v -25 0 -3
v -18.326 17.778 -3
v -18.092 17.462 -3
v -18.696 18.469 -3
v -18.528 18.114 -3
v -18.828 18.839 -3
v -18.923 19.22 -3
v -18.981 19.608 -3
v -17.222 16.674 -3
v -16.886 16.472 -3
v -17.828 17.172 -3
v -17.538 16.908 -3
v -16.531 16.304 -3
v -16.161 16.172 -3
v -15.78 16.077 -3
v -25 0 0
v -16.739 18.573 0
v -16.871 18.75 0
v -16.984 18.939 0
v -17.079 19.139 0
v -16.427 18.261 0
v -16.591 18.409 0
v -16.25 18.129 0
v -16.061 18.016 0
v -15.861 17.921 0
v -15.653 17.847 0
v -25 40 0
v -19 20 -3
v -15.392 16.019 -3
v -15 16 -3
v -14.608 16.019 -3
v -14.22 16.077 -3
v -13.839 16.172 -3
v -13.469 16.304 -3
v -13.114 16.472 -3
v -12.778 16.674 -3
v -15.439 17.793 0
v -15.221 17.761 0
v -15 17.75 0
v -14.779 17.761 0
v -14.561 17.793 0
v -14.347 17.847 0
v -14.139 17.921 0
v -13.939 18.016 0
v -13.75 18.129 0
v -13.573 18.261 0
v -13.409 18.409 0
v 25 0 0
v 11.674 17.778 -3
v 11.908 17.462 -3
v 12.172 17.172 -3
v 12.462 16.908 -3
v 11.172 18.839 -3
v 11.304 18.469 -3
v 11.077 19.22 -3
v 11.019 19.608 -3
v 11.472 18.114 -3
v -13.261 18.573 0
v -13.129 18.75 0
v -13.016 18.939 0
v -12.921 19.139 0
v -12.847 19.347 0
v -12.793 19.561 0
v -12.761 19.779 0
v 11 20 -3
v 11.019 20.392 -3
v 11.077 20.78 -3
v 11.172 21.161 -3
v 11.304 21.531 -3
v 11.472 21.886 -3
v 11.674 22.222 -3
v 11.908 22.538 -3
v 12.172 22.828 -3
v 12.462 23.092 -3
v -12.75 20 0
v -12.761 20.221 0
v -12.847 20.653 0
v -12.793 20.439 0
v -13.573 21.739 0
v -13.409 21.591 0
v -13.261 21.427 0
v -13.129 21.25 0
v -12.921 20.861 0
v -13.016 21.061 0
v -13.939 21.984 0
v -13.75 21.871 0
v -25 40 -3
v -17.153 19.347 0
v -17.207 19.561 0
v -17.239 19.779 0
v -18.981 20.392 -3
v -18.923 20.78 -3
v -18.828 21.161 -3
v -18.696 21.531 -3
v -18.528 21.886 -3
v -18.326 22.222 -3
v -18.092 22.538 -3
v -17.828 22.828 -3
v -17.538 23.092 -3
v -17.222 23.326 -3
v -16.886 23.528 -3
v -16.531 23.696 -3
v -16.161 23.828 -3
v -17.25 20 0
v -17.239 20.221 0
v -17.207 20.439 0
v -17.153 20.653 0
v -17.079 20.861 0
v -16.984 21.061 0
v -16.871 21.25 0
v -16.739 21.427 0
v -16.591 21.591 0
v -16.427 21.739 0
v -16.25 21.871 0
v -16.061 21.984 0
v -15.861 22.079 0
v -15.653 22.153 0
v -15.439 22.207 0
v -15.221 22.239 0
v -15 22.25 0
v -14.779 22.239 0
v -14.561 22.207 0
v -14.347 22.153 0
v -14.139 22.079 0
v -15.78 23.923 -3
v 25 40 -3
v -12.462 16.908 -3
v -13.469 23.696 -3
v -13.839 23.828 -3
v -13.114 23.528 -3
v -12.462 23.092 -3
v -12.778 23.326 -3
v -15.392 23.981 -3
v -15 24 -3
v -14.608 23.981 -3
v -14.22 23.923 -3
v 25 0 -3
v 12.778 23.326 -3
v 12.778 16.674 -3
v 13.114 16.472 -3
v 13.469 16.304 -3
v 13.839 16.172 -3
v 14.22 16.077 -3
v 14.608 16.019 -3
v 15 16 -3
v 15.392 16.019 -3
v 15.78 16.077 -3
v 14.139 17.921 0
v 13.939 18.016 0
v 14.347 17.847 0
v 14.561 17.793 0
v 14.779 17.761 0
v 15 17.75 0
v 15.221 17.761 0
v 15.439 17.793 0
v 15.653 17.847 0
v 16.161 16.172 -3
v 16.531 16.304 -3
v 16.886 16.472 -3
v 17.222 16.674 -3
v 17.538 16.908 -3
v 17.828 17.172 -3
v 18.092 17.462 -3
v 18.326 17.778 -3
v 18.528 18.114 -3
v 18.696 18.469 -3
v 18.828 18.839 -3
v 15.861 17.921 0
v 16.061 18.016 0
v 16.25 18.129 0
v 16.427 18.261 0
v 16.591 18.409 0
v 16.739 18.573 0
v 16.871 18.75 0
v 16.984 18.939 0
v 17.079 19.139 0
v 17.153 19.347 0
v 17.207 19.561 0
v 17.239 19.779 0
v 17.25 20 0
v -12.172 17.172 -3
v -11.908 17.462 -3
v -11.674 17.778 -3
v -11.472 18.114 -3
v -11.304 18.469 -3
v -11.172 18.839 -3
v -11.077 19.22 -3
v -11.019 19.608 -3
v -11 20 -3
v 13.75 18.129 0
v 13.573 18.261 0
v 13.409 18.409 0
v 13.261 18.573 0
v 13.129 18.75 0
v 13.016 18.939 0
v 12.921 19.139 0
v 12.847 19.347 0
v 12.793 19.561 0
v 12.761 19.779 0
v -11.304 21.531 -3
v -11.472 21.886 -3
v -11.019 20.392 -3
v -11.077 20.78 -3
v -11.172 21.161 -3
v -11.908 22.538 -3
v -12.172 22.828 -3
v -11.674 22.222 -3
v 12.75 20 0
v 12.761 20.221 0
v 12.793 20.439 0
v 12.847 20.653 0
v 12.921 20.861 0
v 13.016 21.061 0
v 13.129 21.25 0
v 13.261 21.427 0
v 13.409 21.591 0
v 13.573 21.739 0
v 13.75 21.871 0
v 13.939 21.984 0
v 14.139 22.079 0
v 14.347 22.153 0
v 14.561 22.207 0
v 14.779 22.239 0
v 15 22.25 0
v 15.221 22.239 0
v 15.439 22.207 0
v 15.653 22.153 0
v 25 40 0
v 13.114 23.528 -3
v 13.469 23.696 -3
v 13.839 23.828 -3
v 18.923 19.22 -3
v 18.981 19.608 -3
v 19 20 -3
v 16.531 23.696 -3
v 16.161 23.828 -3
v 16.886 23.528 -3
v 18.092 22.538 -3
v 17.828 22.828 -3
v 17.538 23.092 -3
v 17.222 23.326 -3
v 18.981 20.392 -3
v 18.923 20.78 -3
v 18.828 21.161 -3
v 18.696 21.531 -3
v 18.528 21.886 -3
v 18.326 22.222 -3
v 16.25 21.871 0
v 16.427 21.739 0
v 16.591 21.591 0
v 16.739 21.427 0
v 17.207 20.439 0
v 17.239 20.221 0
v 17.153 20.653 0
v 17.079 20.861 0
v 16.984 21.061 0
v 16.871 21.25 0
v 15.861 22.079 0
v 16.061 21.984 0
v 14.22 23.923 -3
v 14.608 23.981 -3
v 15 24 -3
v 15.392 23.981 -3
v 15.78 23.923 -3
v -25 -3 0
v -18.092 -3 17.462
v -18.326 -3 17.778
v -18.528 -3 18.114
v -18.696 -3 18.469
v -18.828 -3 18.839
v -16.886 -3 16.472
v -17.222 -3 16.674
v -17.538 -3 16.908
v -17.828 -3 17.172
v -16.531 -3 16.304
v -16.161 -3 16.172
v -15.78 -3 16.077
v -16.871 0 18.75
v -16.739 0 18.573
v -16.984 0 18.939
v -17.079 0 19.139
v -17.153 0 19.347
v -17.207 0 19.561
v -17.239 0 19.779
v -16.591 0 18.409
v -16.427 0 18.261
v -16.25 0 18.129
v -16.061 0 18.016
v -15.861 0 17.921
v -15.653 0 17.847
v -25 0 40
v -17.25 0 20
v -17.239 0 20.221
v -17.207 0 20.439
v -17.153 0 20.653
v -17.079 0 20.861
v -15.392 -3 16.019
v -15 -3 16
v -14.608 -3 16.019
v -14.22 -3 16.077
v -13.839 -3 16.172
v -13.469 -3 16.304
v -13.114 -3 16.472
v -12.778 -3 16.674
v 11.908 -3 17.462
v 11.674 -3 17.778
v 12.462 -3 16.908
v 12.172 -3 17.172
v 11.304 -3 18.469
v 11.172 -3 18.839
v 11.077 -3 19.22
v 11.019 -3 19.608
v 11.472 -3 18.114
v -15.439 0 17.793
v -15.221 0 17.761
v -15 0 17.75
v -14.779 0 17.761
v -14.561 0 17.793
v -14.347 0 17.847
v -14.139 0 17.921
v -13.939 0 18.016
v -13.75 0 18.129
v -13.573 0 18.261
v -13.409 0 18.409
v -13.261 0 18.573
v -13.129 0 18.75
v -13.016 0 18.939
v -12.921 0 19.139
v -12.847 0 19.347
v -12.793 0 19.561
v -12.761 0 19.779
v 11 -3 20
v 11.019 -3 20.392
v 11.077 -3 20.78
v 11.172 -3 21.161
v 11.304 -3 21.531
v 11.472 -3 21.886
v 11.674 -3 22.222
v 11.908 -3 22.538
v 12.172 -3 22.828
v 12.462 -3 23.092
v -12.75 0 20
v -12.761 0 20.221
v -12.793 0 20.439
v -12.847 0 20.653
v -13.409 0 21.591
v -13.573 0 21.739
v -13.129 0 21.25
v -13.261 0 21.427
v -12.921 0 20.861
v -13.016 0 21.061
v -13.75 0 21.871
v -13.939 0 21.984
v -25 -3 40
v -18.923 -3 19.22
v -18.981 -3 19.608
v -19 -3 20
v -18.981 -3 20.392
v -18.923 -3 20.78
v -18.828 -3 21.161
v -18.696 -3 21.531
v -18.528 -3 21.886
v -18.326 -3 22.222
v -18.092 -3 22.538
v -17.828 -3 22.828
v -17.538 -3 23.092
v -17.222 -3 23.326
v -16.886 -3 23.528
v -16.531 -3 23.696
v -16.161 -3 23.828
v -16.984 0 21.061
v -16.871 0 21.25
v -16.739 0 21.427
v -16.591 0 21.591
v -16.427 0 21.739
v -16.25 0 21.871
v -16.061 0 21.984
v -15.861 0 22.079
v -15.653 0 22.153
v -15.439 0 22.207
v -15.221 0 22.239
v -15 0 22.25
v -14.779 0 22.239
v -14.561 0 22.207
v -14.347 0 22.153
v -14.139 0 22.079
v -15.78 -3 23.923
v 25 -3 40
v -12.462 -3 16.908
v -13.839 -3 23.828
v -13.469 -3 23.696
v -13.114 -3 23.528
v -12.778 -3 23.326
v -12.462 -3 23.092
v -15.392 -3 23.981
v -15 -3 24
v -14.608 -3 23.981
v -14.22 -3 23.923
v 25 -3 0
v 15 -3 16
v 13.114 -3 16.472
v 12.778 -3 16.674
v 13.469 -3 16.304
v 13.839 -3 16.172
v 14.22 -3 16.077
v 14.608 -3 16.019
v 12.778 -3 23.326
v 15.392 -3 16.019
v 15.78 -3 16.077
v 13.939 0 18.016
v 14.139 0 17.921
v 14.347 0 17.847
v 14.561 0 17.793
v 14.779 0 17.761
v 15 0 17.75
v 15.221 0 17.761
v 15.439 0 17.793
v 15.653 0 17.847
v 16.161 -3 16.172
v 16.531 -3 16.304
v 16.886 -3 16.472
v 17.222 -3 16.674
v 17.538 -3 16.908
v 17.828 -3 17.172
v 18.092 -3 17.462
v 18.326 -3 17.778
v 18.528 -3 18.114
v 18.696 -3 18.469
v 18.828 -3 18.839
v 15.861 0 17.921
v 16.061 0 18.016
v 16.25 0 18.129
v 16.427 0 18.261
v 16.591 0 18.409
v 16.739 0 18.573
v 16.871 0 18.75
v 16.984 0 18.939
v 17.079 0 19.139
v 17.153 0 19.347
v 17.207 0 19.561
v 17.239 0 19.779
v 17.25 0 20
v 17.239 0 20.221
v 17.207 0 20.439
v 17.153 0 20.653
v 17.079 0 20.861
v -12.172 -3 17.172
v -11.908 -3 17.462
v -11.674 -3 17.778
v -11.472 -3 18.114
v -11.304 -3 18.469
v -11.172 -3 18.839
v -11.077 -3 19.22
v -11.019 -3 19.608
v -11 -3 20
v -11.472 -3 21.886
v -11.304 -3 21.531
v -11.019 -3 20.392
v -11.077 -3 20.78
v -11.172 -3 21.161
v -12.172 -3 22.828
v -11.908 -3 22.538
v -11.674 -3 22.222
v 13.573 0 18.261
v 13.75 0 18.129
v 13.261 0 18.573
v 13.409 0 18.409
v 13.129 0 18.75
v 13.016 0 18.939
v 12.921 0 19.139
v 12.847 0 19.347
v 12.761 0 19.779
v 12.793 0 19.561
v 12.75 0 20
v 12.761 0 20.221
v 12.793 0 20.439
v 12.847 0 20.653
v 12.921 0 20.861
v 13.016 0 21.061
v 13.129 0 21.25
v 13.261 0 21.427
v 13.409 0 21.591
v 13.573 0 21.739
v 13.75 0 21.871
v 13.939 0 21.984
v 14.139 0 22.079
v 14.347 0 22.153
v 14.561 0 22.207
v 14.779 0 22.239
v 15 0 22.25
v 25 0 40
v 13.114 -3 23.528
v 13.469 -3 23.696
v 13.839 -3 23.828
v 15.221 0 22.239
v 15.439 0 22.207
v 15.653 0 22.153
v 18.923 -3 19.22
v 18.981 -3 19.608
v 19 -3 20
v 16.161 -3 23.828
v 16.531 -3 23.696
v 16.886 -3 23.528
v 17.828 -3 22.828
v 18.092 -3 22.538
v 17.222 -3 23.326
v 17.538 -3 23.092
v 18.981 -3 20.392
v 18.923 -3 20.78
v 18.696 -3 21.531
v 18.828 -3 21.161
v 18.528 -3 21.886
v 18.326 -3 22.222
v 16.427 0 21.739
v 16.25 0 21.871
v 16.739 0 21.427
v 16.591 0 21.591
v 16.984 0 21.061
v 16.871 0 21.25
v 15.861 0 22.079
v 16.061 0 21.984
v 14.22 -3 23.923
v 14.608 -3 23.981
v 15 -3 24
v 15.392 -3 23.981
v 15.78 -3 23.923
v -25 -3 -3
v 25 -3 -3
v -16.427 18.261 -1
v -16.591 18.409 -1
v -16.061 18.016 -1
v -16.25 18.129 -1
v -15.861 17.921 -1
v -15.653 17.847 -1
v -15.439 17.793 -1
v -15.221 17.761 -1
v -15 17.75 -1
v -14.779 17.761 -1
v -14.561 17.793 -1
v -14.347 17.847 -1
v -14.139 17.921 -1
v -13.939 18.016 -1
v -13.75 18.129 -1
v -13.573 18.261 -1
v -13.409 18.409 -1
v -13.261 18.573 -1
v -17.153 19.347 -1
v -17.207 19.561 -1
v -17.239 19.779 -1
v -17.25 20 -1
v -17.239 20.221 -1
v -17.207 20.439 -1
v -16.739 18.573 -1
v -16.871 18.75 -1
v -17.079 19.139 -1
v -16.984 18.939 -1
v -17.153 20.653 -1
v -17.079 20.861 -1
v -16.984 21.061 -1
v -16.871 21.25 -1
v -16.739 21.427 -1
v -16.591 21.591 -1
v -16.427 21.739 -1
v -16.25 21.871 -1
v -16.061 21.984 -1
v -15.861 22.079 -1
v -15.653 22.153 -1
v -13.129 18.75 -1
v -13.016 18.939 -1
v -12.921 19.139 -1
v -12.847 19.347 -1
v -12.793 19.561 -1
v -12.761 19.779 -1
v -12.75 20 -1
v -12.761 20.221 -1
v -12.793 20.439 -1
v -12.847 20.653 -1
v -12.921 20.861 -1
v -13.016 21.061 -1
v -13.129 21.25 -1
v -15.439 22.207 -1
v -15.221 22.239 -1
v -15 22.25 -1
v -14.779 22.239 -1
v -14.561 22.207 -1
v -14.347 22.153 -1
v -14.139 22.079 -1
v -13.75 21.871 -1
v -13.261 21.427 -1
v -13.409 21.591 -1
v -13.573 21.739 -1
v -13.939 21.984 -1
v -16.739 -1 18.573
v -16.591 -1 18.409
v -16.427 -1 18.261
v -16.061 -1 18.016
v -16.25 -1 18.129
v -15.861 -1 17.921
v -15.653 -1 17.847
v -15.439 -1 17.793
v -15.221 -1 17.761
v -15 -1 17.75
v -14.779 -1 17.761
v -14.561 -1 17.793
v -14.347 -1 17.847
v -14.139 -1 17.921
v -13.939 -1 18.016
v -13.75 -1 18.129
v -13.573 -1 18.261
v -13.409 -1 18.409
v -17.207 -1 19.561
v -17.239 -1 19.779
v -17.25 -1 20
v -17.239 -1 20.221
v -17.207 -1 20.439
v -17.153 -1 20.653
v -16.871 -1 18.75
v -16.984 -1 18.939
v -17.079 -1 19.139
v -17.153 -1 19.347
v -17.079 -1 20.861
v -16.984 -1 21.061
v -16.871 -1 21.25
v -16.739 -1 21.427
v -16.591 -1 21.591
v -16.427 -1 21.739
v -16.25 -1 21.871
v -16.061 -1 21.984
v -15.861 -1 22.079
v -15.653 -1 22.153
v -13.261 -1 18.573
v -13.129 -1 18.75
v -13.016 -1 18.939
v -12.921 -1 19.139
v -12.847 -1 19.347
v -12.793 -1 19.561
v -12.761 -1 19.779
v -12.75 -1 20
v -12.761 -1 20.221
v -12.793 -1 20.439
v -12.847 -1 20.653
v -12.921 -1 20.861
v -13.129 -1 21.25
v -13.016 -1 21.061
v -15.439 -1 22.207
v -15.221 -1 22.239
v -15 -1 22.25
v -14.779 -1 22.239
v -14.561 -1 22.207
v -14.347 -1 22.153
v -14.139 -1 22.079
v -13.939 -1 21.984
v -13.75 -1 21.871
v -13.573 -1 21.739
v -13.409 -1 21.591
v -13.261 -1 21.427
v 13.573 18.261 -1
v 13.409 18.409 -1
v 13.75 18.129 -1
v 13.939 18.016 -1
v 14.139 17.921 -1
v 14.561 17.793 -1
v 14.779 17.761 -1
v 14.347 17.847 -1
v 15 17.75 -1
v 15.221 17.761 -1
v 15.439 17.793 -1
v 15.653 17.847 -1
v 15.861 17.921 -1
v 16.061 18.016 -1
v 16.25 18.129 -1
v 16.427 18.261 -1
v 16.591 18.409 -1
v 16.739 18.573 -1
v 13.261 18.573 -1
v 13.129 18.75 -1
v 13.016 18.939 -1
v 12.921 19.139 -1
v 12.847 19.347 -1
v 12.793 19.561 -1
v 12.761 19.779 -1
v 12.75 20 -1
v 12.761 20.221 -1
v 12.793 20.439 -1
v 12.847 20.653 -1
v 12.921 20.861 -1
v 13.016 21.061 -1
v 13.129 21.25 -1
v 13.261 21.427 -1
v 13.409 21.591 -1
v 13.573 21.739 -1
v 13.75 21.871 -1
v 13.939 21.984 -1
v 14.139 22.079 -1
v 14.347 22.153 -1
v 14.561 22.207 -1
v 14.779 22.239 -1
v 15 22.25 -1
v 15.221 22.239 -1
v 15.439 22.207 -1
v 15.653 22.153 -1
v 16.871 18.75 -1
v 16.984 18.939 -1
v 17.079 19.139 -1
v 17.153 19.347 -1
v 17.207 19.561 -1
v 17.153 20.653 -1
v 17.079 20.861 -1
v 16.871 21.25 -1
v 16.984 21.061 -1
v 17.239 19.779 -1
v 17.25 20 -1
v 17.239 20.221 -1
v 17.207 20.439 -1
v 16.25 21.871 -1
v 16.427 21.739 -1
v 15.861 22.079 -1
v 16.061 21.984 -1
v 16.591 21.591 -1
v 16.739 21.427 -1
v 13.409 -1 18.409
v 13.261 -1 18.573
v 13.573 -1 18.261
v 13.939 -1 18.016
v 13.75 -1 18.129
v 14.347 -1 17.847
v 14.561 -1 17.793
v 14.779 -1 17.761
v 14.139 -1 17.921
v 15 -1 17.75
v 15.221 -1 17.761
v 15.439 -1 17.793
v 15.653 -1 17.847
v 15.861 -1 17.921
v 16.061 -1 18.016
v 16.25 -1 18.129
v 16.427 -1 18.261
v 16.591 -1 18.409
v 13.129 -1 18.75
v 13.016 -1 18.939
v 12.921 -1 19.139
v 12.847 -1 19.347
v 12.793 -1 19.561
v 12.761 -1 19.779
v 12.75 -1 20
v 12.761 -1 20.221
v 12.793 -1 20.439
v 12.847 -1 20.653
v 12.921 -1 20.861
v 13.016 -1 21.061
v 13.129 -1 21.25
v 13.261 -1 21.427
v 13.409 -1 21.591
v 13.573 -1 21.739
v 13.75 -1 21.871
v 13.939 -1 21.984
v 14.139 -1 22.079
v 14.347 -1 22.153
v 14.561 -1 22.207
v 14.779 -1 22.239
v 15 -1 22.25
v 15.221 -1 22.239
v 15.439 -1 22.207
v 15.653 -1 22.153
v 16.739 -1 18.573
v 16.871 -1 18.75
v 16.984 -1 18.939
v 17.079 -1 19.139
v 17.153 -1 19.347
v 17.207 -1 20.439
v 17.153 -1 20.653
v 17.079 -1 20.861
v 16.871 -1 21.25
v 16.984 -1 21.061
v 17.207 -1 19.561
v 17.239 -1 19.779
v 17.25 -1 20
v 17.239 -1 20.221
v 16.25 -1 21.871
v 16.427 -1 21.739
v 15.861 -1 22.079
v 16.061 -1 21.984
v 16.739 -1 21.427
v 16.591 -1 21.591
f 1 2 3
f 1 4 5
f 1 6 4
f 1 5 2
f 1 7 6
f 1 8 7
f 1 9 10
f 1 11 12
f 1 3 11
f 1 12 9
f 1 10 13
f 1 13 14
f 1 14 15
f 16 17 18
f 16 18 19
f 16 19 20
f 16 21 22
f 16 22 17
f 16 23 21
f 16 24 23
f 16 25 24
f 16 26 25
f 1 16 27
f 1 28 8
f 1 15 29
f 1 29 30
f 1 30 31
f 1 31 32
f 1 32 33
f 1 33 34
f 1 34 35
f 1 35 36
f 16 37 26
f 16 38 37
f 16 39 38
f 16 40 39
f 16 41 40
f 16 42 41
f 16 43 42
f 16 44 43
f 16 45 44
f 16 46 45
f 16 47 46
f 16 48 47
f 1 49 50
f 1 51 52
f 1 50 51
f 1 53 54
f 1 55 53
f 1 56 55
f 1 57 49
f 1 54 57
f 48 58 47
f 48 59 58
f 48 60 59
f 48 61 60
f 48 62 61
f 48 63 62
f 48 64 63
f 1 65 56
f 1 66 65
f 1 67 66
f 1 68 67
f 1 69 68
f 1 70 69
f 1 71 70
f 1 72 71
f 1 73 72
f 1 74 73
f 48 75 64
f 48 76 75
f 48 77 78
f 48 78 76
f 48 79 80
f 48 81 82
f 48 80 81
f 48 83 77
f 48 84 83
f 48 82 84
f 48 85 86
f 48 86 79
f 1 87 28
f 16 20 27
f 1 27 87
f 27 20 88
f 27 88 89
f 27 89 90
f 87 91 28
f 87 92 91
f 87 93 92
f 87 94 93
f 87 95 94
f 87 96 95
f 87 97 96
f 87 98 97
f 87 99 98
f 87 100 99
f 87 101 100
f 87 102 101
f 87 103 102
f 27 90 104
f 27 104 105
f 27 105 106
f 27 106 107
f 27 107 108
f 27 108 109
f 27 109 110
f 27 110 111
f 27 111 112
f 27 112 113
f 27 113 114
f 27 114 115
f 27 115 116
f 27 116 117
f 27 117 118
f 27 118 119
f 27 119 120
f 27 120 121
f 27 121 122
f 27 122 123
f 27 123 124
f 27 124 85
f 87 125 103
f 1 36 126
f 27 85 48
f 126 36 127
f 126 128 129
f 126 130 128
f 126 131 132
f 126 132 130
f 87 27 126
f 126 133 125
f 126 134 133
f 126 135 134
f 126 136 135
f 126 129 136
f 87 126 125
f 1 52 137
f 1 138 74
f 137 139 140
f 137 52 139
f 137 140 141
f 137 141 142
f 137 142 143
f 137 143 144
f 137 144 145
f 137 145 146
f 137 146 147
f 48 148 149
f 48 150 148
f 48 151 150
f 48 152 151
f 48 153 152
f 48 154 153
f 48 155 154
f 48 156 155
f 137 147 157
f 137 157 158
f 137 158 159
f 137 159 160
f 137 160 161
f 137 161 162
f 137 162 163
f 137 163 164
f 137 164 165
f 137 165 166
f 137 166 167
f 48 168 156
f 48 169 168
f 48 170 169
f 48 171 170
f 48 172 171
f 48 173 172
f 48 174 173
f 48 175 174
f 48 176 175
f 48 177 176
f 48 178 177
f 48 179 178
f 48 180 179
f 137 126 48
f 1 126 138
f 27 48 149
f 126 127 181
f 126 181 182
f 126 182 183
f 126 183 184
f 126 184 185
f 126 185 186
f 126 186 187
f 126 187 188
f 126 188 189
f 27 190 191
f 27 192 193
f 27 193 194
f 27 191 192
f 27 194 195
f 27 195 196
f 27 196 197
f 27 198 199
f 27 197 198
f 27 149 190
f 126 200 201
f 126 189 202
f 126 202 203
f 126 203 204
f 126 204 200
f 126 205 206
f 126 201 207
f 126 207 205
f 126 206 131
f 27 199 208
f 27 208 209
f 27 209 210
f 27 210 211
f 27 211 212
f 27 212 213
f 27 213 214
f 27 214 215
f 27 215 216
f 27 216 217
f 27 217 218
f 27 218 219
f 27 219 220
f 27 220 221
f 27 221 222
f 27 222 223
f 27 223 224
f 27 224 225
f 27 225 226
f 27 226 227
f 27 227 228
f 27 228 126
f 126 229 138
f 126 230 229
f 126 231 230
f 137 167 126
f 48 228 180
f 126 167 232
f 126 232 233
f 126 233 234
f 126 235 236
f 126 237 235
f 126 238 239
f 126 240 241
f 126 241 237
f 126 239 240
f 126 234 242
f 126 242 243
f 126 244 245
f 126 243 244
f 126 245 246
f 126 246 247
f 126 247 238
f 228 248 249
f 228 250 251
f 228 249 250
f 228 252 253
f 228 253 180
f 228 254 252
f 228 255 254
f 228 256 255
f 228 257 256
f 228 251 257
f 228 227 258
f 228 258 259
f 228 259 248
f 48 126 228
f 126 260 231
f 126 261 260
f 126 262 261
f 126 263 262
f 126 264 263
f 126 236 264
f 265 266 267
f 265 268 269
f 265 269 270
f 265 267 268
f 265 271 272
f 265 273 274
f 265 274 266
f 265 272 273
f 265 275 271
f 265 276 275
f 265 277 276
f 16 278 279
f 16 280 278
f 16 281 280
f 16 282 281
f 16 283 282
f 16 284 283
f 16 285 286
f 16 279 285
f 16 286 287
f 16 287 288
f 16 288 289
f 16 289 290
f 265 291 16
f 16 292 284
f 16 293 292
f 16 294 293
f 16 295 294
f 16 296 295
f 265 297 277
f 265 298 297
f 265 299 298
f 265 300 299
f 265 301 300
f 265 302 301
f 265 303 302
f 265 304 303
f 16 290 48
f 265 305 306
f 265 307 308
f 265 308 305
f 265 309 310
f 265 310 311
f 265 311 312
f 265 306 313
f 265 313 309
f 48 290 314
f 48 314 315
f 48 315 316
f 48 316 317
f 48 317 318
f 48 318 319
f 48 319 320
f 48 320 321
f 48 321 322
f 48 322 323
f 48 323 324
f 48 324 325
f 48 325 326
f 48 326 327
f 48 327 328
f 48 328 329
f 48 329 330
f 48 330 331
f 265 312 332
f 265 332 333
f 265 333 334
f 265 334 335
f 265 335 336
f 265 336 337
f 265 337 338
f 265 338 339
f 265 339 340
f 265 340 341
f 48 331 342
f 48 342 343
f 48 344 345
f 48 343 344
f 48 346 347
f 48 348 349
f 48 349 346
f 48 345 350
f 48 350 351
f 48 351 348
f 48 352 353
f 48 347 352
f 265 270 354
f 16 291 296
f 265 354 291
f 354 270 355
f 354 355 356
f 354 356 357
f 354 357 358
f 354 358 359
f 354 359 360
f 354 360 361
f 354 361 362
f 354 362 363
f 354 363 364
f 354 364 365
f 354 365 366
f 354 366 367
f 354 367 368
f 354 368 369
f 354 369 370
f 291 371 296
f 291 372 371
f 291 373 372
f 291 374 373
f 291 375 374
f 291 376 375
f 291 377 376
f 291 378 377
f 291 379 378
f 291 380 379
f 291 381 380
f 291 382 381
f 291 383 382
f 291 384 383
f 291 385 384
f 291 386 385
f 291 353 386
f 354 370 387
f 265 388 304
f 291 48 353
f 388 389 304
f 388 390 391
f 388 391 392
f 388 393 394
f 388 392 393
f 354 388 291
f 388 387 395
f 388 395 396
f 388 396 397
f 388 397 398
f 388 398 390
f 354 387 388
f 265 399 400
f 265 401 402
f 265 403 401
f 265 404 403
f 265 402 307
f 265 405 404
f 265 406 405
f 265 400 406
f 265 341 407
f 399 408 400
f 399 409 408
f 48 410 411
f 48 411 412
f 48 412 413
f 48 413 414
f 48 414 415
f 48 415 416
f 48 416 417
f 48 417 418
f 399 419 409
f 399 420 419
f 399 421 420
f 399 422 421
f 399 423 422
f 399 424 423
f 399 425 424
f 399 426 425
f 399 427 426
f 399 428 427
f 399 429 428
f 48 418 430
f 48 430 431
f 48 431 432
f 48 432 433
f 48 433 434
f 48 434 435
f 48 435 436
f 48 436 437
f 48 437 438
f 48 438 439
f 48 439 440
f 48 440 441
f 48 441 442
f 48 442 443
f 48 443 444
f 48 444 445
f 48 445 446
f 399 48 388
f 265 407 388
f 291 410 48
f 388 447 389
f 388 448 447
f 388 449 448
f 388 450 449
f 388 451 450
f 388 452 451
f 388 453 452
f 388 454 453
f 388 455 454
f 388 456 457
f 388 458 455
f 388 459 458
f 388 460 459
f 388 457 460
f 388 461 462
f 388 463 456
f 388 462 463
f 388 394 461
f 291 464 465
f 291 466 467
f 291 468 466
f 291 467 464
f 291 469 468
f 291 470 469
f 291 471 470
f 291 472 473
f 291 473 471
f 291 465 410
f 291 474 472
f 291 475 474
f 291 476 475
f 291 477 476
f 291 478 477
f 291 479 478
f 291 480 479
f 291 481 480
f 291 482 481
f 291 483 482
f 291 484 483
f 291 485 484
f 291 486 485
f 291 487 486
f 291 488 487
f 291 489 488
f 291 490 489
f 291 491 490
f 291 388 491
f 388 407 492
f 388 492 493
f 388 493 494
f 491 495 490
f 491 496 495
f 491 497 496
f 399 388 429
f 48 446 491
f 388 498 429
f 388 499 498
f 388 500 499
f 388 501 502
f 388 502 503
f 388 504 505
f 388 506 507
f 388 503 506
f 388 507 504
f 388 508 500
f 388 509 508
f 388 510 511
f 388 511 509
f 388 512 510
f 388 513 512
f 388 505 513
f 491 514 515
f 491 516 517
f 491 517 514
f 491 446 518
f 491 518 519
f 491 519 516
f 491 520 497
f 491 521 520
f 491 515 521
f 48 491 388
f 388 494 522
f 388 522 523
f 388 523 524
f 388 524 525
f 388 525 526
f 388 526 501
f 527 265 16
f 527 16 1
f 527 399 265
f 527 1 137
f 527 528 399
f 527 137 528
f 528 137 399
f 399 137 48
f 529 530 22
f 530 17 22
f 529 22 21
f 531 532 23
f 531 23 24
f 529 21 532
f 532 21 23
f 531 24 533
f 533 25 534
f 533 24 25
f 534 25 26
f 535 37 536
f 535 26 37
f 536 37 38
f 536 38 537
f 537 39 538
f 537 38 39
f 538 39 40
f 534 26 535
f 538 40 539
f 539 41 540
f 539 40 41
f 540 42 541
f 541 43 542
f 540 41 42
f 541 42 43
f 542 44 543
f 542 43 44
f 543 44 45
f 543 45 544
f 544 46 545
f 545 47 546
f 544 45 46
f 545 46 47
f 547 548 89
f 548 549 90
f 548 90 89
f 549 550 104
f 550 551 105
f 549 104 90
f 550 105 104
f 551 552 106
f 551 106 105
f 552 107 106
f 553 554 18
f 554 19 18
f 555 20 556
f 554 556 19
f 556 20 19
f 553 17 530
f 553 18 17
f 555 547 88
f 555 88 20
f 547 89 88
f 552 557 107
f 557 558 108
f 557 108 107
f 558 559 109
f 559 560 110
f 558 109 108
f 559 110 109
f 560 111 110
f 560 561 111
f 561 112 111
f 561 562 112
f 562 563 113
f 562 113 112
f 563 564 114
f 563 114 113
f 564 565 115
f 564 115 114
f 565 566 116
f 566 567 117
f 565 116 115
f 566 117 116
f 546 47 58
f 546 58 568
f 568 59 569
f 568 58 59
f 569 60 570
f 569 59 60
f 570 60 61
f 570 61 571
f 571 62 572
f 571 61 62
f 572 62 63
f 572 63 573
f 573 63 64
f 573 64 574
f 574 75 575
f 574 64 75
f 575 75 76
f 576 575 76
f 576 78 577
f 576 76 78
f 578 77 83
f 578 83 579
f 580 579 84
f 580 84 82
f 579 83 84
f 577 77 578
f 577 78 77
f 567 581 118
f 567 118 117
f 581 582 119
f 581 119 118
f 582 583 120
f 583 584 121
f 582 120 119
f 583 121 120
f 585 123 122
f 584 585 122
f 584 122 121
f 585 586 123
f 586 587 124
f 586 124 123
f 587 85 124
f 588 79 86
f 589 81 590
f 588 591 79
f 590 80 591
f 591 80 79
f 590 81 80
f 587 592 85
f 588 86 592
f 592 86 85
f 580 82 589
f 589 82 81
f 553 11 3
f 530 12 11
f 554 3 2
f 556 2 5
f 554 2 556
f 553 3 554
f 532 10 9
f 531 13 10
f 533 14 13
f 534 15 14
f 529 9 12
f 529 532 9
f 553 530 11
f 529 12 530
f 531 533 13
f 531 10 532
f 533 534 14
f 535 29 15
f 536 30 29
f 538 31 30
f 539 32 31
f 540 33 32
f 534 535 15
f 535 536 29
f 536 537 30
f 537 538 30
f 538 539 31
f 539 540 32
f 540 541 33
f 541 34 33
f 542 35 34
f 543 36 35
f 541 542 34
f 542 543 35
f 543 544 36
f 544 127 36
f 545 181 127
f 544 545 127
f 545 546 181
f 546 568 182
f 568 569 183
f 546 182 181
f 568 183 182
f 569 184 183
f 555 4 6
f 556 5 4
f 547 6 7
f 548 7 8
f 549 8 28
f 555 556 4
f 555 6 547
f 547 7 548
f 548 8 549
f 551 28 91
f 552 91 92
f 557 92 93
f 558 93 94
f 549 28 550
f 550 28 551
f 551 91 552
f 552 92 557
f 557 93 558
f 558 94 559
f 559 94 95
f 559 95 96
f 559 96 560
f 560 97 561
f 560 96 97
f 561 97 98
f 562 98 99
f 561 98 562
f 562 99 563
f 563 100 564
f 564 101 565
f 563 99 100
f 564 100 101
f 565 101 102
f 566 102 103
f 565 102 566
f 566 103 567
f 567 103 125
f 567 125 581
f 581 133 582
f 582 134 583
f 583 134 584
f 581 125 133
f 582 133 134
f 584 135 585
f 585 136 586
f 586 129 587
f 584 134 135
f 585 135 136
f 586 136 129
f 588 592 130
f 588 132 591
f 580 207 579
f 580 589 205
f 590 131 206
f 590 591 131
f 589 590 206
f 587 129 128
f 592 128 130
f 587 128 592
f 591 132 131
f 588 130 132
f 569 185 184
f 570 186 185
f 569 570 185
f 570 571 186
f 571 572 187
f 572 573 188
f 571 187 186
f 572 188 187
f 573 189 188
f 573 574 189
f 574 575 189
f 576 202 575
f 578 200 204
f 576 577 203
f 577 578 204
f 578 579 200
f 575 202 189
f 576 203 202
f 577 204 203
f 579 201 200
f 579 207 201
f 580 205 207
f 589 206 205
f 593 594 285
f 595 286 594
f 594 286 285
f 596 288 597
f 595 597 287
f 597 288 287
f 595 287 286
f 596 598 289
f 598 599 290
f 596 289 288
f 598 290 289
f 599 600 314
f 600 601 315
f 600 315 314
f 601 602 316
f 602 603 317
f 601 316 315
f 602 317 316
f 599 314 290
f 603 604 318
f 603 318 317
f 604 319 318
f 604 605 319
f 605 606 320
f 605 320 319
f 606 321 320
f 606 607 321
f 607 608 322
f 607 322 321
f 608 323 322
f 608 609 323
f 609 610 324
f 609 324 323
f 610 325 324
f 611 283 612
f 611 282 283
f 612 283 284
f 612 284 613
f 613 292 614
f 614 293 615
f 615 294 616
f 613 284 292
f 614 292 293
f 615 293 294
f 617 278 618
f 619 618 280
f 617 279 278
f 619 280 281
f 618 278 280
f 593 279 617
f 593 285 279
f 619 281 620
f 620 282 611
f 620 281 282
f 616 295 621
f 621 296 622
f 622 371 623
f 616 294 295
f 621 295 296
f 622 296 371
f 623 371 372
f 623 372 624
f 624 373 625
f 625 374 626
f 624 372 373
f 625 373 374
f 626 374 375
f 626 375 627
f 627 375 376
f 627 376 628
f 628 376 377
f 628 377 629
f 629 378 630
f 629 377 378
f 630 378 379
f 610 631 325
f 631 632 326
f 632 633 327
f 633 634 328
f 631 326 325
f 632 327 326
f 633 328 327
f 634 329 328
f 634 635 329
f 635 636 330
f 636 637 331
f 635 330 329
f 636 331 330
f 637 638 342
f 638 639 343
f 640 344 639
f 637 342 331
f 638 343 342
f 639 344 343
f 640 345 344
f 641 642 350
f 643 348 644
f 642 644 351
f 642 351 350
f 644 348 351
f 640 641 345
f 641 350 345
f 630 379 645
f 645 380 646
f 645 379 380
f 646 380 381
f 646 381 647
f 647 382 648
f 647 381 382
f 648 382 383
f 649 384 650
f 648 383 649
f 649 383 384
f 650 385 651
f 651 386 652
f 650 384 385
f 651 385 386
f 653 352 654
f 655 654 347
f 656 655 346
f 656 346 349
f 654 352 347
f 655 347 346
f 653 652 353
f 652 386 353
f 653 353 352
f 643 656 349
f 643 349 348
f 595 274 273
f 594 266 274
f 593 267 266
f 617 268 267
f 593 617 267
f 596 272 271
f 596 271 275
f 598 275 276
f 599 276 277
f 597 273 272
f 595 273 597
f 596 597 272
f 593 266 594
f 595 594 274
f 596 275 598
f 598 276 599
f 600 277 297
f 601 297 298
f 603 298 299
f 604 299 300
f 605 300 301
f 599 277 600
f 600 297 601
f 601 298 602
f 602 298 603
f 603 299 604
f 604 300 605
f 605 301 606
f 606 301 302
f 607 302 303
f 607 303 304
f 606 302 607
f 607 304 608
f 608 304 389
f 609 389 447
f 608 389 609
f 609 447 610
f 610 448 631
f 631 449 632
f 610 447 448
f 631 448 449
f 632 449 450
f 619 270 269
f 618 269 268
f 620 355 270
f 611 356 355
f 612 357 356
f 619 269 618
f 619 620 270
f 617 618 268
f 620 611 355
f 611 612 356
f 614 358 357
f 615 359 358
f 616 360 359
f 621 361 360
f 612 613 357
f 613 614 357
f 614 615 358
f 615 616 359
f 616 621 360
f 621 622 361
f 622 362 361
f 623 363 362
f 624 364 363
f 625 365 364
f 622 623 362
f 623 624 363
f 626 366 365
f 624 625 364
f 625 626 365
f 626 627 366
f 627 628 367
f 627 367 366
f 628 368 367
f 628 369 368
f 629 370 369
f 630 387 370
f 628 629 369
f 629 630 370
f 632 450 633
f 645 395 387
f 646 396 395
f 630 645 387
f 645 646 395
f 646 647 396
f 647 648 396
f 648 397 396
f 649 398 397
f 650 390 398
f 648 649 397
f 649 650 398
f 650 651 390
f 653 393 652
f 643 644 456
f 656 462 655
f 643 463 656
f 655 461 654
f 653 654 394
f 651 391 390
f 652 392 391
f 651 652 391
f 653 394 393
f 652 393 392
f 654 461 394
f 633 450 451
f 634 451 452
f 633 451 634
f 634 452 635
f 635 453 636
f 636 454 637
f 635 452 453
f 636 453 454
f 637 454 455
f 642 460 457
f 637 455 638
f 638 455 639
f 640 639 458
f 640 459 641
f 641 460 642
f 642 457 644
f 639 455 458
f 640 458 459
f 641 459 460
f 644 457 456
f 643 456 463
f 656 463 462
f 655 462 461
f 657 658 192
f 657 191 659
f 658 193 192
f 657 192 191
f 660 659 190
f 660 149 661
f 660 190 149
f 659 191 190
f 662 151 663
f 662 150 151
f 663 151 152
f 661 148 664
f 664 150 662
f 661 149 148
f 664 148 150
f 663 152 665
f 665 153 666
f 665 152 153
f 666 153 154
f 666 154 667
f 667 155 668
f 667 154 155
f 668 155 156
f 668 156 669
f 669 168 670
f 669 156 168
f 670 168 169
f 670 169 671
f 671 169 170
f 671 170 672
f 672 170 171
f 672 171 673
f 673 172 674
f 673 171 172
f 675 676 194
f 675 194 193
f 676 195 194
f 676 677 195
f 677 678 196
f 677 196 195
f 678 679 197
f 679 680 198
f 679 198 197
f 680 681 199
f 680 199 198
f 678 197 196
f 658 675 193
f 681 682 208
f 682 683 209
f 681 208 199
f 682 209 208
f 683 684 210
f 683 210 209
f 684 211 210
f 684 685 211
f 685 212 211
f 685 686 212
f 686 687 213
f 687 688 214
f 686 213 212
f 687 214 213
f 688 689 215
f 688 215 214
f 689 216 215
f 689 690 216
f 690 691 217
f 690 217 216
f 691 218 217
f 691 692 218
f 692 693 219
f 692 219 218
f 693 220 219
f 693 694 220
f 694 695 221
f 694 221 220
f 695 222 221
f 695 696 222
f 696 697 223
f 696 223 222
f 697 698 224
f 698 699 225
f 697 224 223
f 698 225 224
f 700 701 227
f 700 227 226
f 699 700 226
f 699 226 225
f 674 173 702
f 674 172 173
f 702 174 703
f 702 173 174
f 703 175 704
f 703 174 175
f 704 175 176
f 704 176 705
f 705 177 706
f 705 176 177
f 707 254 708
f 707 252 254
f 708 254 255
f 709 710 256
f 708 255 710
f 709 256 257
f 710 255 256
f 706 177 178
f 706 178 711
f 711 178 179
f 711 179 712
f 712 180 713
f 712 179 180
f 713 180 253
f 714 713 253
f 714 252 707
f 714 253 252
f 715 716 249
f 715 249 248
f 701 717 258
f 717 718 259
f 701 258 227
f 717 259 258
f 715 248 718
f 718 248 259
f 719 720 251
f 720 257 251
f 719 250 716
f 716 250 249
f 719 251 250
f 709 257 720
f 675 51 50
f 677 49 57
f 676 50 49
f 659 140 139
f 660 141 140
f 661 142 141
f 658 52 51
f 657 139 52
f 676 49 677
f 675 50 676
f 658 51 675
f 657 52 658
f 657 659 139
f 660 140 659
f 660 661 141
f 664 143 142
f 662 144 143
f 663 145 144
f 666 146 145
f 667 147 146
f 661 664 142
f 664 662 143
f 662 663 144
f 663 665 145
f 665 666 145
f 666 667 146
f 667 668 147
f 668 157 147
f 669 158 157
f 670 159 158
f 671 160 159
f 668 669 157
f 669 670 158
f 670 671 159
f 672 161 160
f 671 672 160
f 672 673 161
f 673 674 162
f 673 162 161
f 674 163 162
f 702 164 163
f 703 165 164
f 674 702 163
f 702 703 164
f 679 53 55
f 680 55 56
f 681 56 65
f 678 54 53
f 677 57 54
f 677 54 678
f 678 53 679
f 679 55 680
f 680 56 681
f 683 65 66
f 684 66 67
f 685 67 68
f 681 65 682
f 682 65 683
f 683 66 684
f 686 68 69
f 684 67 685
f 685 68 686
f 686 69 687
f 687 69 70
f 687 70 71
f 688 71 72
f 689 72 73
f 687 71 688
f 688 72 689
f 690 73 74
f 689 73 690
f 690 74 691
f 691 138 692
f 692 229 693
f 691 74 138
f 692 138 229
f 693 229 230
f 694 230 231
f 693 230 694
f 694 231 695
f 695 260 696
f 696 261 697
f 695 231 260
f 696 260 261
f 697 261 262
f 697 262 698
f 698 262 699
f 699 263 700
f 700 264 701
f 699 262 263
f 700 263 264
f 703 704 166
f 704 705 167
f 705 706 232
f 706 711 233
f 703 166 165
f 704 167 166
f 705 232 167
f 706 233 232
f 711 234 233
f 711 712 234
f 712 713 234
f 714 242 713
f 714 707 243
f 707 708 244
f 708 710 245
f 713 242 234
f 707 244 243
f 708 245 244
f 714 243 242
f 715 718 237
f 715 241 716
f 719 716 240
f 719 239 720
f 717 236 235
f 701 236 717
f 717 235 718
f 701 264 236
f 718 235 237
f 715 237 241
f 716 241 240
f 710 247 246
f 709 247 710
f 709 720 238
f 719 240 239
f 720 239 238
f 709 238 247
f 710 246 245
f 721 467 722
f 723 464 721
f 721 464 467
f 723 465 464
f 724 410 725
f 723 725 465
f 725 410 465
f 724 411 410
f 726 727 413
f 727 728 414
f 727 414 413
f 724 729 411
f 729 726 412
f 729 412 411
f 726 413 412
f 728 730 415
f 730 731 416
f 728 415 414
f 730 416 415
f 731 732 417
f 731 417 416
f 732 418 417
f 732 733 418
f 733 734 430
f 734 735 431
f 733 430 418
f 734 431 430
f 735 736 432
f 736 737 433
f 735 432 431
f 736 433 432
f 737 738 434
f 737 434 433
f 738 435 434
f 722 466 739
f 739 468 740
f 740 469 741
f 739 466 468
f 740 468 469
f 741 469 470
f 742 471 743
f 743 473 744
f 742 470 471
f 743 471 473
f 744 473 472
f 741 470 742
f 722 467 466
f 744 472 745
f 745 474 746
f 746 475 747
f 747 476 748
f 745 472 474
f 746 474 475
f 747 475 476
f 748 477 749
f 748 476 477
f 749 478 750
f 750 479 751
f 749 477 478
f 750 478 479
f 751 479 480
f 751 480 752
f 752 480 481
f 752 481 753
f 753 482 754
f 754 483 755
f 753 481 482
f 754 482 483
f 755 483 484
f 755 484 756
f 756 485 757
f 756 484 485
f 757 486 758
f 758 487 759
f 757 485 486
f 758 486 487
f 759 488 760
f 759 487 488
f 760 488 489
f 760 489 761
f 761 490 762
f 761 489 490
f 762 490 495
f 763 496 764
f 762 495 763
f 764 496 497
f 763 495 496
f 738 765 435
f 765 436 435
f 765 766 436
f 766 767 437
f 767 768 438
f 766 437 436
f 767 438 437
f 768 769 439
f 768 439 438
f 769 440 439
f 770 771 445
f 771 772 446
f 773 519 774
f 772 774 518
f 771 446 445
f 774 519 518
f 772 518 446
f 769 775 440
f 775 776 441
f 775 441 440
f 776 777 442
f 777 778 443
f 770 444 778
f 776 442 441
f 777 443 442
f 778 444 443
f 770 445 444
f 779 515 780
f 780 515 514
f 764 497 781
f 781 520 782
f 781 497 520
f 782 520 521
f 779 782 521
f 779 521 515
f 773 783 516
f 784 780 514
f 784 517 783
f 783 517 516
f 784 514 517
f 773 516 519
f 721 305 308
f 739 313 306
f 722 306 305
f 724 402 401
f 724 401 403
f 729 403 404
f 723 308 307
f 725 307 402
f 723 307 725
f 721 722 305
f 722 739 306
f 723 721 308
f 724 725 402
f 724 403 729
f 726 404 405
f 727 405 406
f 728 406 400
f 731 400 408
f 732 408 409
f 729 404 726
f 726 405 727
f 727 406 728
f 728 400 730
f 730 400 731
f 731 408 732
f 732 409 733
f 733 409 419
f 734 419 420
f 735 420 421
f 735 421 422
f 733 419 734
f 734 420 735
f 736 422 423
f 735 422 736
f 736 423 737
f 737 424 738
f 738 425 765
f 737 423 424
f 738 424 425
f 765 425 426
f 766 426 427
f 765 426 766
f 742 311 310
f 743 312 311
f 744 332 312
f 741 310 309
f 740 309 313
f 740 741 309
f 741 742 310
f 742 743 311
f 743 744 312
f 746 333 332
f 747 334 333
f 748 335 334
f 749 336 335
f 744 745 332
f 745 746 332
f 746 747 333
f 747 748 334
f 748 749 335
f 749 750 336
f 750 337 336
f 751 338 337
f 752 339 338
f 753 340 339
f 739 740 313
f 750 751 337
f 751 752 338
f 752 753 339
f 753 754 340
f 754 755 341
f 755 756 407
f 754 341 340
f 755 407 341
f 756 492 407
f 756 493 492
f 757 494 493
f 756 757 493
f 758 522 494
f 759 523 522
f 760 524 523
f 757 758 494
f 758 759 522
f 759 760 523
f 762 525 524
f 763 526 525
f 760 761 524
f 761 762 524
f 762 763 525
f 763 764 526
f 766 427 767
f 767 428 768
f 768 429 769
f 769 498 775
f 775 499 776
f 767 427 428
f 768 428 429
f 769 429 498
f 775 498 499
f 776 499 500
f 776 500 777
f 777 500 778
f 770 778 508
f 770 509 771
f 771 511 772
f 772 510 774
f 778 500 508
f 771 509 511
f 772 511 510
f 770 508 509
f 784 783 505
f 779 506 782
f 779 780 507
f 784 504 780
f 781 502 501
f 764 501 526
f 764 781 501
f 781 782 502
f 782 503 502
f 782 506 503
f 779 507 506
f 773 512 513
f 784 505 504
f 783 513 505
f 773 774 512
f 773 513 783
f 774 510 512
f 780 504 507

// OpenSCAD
$fn = 64;

width = 50;
horizontal_depth = 40;
vertical_height = 40;
thickness = 3;

hole_diameter = 4.5;
countersink_diameter = 8;
countersink_depth = 2;
edge_offset = 10;
eps = 0.02;

hole_x = [-width / 2 + edge_offset, width / 2 - edge_offset];

difference() {
    union() {
        // 内側コーナーを (Y, Z) = (0, 0) に配置
        translate([-width / 2, 0, -thickness])
            cube([width, horizontal_depth, thickness]);

        translate([-width / 2, -thickness, 0])
            cube([width, thickness, vertical_height]);

        // 2 面をつなぐ外側コーナー
        translate([-width / 2, -thickness, -thickness])
            cube([width, thickness, thickness]);
    }

    for (x = hole_x) {
        // 水平面：外側（下面）に皿座面
        translate([x, horizontal_depth / 2, -thickness - eps])
            cylinder(h = thickness + 2 * eps, d = hole_diameter);

        translate([x, horizontal_depth / 2, -thickness])
            cylinder(
                h = countersink_depth,
                d1 = countersink_diameter,
                d2 = hole_diameter
            );

        // 垂直面：外側（-Y 側）に皿座面
        translate([x, -thickness - eps, vertical_height / 2])
            rotate([-90, 0, 0])
                cylinder(h = thickness + 2 * eps, d = hole_diameter);

        translate([x, -thickness, vertical_height / 2])
            rotate([-90, 0, 0])
                cylinder(
                    h = countersink_depth,
                    d1 = countersink_diameter,
                    d2 = hole_diameter
                );
    }
}
